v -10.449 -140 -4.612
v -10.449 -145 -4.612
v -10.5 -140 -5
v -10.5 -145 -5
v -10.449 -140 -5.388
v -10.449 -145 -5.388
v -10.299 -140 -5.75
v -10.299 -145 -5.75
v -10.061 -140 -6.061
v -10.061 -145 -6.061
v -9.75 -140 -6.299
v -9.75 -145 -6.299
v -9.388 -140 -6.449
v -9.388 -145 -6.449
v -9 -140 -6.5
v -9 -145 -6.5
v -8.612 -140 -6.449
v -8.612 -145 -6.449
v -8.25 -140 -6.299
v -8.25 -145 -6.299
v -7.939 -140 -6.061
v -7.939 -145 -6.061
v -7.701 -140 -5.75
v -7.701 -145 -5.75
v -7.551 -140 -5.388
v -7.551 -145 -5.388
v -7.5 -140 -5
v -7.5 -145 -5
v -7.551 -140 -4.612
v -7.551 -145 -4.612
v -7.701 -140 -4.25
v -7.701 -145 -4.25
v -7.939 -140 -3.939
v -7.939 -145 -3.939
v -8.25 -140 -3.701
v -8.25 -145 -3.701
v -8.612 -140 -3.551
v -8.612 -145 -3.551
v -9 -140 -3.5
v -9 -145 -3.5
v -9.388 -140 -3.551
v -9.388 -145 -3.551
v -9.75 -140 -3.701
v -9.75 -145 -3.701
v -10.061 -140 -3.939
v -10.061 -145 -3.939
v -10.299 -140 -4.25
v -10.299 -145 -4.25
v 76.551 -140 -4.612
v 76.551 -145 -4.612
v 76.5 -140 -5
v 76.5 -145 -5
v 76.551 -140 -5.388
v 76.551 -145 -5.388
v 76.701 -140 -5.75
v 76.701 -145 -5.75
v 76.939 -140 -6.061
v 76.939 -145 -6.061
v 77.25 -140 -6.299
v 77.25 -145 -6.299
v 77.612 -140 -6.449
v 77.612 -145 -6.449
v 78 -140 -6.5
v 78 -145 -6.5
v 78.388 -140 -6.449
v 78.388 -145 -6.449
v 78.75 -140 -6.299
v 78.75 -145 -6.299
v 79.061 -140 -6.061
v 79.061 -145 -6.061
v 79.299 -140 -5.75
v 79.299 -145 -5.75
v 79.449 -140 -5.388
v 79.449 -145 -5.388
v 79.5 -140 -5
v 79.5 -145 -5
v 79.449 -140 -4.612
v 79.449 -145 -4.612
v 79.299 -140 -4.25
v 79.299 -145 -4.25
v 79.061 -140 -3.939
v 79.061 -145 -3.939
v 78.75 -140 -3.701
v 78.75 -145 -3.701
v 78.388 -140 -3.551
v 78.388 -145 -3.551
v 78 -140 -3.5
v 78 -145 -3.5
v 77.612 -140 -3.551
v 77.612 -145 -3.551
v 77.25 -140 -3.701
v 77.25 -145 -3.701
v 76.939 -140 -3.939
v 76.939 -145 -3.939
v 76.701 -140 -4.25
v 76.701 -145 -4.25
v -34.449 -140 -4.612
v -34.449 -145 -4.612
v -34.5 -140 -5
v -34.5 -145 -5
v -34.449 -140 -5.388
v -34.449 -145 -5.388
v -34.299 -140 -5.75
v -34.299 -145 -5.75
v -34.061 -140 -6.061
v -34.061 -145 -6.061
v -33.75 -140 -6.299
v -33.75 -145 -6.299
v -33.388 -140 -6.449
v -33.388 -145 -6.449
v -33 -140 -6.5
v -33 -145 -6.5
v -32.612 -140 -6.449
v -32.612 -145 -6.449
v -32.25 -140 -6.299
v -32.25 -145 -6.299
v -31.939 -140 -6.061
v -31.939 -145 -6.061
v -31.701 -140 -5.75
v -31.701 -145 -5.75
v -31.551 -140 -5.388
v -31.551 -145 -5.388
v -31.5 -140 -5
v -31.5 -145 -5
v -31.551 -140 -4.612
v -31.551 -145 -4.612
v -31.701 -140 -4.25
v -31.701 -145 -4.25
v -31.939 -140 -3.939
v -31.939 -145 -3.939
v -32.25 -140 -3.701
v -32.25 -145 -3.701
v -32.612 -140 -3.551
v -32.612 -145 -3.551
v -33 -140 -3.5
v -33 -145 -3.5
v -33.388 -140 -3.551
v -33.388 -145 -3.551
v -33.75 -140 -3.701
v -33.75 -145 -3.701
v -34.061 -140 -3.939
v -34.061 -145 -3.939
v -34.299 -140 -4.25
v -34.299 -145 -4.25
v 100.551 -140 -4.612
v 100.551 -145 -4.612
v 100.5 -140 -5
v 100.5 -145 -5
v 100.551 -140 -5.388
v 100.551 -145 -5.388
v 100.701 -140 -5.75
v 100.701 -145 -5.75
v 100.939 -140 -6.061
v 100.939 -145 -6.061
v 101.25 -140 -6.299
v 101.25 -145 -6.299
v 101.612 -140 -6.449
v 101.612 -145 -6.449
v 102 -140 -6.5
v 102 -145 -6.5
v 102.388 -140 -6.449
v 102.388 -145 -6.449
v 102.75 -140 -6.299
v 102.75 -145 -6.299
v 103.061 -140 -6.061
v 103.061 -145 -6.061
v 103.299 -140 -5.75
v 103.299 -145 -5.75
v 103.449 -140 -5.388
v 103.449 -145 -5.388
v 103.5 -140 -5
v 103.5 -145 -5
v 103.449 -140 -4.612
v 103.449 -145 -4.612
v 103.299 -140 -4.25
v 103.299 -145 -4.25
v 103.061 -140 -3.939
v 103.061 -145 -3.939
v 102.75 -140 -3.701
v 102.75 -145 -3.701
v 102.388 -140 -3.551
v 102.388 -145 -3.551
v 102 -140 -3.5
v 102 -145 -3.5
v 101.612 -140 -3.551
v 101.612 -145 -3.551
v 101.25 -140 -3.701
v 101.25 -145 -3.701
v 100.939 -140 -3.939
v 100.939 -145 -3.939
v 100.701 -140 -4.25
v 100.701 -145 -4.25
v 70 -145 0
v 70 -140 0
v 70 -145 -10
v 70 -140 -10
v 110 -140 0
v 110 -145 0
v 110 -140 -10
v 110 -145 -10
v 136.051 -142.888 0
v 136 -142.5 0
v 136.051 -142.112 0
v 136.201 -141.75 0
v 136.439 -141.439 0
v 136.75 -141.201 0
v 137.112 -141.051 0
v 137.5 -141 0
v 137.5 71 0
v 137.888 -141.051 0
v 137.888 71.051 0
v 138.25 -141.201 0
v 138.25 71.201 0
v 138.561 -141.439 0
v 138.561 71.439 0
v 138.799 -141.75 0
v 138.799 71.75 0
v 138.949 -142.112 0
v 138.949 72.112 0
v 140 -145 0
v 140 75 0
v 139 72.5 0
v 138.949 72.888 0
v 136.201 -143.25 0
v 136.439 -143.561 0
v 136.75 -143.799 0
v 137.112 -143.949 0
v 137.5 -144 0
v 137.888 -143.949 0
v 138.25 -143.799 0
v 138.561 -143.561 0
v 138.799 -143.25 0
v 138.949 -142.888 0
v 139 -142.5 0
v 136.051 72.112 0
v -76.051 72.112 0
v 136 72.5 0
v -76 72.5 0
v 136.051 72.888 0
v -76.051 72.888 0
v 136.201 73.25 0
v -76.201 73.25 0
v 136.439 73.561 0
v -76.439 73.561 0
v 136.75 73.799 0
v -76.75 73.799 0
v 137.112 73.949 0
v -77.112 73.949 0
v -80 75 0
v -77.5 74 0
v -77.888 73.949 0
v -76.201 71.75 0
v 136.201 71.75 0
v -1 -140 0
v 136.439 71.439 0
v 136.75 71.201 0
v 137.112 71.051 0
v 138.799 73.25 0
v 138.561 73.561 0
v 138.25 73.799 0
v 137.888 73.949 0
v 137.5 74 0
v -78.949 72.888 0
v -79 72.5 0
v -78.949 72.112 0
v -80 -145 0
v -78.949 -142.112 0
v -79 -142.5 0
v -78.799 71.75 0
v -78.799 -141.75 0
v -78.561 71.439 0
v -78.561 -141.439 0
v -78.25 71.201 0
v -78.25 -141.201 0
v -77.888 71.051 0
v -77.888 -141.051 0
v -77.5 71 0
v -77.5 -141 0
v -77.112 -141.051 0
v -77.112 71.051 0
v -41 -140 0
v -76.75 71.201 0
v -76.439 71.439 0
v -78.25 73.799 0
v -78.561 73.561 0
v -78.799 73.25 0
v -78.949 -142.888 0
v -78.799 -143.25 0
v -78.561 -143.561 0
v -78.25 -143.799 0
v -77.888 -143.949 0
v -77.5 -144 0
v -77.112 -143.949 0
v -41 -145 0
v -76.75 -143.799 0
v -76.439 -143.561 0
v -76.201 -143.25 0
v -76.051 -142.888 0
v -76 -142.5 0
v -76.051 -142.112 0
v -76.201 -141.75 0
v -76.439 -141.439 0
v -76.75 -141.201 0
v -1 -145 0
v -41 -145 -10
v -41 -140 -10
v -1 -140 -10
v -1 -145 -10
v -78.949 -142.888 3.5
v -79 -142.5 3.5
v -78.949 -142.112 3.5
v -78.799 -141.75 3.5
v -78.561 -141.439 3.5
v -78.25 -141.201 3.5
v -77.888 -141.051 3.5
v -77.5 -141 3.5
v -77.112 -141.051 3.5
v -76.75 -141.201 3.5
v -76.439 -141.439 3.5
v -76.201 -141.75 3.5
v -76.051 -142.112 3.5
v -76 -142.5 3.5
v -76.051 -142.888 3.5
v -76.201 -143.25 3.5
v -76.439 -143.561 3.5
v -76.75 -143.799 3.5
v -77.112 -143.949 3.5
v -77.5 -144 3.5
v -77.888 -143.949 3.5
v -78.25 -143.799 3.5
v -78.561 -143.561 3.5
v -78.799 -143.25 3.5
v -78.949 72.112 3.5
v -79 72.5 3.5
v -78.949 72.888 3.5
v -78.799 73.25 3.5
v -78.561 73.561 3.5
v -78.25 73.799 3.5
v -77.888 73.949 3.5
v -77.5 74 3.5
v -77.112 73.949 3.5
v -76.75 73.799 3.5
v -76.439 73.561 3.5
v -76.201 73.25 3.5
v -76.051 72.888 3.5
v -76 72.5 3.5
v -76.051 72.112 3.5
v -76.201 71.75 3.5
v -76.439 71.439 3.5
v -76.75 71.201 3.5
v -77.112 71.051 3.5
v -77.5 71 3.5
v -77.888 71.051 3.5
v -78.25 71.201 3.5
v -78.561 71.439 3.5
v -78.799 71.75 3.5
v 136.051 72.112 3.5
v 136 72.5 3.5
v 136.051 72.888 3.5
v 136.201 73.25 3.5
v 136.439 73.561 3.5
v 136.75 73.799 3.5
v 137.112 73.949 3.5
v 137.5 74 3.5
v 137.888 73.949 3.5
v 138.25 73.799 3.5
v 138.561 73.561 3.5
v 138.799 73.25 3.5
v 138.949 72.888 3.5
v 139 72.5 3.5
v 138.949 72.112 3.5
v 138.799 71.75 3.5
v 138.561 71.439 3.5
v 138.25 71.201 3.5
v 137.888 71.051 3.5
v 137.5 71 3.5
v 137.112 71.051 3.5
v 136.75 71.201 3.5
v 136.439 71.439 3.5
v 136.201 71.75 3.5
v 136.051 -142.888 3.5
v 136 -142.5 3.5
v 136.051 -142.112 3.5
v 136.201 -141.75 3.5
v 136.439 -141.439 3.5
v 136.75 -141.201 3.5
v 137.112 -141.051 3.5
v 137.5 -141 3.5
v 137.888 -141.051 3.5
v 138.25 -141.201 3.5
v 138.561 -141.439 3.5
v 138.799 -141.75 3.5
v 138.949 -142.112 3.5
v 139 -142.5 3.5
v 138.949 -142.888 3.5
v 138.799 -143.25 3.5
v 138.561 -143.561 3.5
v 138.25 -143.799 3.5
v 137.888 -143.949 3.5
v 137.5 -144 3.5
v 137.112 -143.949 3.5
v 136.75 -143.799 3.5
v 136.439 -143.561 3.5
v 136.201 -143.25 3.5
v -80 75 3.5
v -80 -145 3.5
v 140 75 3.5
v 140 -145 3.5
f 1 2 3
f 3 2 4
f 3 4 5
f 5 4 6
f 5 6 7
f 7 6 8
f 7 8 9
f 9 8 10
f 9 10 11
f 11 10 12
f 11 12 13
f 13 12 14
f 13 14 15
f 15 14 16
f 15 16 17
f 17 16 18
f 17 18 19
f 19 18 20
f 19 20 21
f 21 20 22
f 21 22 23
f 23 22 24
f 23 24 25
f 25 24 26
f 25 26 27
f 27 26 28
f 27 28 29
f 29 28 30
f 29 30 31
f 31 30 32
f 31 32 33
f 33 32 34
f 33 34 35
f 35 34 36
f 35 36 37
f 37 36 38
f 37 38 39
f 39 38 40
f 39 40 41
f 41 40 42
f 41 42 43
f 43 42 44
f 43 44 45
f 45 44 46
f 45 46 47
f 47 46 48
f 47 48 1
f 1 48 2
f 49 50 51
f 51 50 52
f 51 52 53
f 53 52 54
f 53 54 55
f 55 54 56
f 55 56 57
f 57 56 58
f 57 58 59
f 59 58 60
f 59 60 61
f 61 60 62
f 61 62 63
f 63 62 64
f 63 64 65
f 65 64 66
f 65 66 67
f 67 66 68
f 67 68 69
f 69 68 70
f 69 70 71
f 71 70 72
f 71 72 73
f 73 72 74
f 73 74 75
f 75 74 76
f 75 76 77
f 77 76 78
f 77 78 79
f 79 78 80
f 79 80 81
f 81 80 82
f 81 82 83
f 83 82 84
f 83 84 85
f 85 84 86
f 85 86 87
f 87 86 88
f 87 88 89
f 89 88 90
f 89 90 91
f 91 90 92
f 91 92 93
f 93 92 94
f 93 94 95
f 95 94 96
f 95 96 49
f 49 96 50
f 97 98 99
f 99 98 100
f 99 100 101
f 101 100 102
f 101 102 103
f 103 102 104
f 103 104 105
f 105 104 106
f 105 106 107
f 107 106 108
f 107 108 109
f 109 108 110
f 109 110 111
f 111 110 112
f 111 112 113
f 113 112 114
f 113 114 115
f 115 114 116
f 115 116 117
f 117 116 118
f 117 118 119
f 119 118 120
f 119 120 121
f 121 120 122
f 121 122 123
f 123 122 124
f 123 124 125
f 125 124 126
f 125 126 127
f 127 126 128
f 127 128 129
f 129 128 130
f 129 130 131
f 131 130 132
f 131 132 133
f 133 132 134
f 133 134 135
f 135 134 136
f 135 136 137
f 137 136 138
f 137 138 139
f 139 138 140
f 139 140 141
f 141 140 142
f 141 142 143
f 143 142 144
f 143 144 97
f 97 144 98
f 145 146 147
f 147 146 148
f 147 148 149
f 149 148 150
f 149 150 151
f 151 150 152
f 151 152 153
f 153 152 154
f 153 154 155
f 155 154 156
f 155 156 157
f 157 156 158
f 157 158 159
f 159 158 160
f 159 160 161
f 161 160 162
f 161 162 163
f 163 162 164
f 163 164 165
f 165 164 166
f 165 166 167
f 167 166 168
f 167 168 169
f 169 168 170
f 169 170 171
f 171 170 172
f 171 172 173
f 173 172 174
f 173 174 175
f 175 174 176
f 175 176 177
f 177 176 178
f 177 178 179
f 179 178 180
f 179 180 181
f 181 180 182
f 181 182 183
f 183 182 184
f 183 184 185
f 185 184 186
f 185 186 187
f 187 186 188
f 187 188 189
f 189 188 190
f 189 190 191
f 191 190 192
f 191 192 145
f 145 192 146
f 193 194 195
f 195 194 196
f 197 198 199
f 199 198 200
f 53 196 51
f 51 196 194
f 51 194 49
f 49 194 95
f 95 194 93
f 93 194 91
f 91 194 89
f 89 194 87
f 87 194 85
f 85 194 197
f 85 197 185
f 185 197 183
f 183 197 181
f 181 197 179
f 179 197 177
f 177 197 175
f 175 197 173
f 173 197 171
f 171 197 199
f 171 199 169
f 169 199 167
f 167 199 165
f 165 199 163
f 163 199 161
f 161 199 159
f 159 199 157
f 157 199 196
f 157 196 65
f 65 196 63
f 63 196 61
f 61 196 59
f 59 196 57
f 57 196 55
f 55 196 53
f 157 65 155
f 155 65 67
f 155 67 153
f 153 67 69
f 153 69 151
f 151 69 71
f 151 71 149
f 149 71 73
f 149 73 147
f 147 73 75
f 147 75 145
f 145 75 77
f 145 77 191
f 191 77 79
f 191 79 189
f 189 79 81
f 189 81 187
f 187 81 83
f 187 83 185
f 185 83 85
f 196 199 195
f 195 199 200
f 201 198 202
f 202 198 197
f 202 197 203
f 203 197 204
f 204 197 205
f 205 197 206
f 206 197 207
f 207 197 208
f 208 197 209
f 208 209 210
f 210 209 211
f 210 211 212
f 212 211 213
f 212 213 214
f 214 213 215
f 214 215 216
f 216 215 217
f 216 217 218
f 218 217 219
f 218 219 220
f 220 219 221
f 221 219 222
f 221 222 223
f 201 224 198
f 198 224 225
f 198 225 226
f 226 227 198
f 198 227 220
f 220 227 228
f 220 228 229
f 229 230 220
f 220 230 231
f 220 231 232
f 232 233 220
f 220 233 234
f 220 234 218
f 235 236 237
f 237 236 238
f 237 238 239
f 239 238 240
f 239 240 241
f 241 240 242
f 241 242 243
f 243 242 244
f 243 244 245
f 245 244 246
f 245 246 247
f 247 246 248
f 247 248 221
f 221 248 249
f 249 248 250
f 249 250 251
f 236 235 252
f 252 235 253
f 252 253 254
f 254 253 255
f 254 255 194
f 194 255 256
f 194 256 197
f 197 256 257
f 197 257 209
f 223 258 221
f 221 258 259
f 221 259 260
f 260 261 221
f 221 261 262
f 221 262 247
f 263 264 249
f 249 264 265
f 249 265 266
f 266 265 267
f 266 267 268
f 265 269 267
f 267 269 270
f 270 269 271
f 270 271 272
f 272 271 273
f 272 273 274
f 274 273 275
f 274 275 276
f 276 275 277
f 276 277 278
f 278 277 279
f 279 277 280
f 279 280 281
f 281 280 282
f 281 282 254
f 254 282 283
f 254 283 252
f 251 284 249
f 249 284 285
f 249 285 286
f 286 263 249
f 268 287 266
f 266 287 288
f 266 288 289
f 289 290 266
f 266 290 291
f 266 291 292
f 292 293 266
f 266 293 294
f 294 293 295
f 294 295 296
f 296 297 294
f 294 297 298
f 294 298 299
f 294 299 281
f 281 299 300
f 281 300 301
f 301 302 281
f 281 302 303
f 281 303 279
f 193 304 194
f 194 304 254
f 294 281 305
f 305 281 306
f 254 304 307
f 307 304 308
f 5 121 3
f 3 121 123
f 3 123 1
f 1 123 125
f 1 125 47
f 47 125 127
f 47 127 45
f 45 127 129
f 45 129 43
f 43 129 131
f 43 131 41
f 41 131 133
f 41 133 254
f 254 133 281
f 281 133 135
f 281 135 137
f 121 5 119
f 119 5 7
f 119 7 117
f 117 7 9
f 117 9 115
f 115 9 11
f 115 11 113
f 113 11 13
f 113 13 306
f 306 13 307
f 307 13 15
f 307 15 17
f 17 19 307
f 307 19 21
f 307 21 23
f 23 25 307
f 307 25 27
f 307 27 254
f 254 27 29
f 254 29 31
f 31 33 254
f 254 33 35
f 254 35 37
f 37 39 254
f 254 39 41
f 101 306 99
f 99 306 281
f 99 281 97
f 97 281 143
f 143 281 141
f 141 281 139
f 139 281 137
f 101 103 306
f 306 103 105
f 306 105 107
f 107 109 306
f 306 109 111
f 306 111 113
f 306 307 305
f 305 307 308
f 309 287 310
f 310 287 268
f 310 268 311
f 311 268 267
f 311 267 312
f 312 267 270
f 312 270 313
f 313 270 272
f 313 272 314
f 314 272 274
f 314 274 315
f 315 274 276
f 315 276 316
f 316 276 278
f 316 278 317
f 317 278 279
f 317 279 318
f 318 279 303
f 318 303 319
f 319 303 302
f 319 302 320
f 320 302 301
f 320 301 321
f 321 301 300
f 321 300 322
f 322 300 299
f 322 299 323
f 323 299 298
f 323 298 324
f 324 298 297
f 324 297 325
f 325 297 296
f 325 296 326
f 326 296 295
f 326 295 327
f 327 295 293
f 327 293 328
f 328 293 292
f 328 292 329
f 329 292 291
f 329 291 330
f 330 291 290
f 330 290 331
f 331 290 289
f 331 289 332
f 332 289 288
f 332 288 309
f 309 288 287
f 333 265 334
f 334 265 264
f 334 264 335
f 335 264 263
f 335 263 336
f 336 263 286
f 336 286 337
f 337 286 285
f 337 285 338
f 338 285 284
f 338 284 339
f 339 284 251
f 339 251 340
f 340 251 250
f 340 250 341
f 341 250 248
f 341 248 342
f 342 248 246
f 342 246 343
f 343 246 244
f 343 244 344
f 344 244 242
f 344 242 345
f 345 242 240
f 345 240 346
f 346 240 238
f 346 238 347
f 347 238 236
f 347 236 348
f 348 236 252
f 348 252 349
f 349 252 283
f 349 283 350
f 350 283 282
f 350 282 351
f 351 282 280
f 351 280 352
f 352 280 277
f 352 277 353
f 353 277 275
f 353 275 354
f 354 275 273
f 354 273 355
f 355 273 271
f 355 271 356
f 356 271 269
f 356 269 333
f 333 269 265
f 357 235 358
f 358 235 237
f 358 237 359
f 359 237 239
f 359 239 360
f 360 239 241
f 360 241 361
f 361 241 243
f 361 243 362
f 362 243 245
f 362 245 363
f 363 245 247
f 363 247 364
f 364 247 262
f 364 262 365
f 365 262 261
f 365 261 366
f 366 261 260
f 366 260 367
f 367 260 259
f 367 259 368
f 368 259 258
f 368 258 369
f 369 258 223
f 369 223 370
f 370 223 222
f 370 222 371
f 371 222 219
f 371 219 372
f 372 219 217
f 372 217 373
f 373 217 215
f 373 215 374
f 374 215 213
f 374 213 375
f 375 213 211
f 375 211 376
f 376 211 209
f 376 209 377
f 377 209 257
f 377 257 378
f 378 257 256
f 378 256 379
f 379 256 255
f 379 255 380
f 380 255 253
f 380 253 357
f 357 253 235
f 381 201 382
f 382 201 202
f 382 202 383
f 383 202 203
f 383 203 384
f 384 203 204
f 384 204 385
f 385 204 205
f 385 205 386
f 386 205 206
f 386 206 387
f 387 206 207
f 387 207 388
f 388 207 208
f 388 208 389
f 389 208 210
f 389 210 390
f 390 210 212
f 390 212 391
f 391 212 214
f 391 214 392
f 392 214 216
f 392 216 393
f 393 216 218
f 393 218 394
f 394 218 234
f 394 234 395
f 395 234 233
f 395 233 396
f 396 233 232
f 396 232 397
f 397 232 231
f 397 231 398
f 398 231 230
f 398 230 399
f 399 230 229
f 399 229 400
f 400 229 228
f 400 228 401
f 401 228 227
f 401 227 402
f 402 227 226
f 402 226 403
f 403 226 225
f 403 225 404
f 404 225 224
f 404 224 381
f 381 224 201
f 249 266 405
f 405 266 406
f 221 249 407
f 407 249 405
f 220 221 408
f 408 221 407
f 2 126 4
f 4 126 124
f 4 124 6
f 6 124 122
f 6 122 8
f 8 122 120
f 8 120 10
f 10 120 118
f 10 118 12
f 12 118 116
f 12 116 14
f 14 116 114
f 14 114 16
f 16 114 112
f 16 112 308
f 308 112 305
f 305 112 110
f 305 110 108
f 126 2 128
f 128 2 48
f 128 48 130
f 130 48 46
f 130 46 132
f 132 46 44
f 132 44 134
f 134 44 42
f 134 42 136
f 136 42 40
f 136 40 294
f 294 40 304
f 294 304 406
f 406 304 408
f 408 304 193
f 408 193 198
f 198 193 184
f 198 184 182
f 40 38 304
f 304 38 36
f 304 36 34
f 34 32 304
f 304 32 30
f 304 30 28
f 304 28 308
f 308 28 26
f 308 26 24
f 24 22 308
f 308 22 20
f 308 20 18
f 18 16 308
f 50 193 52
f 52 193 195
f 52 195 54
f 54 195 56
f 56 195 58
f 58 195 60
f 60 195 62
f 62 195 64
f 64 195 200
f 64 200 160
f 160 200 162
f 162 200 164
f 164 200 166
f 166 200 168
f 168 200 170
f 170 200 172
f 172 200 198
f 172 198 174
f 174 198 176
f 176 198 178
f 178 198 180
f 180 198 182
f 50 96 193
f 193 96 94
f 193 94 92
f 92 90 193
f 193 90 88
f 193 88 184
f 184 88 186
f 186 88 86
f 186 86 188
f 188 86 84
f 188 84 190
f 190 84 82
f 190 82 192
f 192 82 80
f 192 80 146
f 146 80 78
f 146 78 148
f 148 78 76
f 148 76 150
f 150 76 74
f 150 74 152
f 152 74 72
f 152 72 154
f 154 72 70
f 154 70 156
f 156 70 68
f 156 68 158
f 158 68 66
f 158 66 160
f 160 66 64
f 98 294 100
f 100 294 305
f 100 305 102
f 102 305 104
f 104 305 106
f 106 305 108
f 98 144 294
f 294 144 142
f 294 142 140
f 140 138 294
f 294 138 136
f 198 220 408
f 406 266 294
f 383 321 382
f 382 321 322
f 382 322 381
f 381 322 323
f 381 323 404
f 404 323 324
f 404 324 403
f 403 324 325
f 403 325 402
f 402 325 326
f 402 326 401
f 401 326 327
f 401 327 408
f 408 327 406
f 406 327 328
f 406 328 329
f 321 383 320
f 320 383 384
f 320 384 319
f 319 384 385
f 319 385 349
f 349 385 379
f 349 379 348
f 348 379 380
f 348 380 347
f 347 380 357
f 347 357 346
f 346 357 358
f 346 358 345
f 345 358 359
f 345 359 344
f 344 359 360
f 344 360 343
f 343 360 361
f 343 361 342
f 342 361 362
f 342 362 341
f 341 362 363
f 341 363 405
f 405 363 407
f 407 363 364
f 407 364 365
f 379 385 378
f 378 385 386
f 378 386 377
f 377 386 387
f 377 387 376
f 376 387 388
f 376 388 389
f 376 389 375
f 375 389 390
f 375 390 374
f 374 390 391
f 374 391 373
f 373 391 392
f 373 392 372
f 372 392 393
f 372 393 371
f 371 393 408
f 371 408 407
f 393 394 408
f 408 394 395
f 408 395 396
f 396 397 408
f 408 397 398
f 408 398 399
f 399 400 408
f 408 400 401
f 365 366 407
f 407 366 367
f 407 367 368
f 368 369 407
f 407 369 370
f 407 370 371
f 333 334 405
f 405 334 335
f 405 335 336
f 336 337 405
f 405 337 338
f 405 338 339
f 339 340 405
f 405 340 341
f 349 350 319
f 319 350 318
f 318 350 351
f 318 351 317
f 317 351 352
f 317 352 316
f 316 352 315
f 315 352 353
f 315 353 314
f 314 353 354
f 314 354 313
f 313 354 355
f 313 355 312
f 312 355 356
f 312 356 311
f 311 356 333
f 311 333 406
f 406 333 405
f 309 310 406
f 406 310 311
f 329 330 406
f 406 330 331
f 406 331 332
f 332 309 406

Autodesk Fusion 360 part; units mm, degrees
sketch "Sketch1" plane through (0, 0, 0) normal (0, 0, 1) x (1, 0, 0)
  line L0 (-80, 75) -> (140, 75)
  line L1 (140, 75) -> (140, -145)
  line L2 (140, -145) -> (-80, -145)
  line L3 (-80, -145) -> (-80, 75)
  circle A0 centre (-77.5, 72.5) radius 1.5
  circle A1 centre (137.5, 72.5) radius 1.5
  circle A2 centre (137.5, -142.5) radius 1.5
  circle A3 centre (-77.5, -142.5) radius 1.5
  dimension "d1" = 220
  dimension "d2" = 220
  dimension "d3" = 3
  dimension "d4" = 3
  dimension "d5" = 3
  dimension "d6" = 3
  dimension "d7" = 2.5
  dimension "d8" = 2.5
  dimension "d9" = 2.5
  dimension "d10" = 2.5
  dimension "d11" = 2.5
  dimension "d12" = 2.5
  dimension "d13" = 2.5
  dimension "d14" = 2.5
extrude "Extrude1" add sketch "Sketch1" along normal blind 3.5
sketch "Sketch2" plane through (0, 0, 0) normal (0, 0, -1) x (1, 0, 0)
  circle A0 centre (137.5, 142.5) radius 1.5
  circle A1 centre (137.5, -72.5) radius 1.5
  circle A2 centre (-77.5, -72.5) radius 1.5
  circle A3 centre (-77.5, 142.5) radius 1.5
  line L0 (140, 145) -> (-80, 145)
  line L1 (-80, 145) -> (-80, -75)
  line L2 (-80, -75) -> (140, -75)
  line L3 (140, -75) -> (140, 145)
  line L4 (-41, 145) -> (-1, 145)
  line L5 (-1, 145) -> (-1, 140)
  line L6 (-1, 140) -> (-41, 140)
  line L7 (-41, 140) -> (-41, 145)
  line L8 (70, 145) -> (110, 145)
  line L9 (110, 145) -> (110, 140)
  line L10 (110, 140) -> (70, 140)
  line L11 (70, 140) -> (70, 145)
  dimension "d17" = 5
  dimension "d18" = 5
  dimension "d19" = 40
  dimension "d20" = 40
  dimension "d21" = 30
  dimension "d22" = 39
extrude "Extrude2" add sketch "Sketch2" along normal blind 10 contours L0 L8 L9 L10 L11 | L0 L4 L5 L6 L7
sketch "Sketch3" plane through (0, -145, 0) normal (0, -1, 0) x (1, 0, 0)
  line L0 (110, 0) -> (140, 0)
  line L1 (140, 0) -> (140, 3.5)
  line L2 (140, 3.5) -> (-80, 3.5)
  line L3 (-80, 3.5) -> (-80, 0)
  line L4 (-80, 0) -> (-41, 0)
  line L5 (-41, 0) -> (-41, -10)
  line L6 (-41, -10) -> (-1, -10)
  line L7 (-1, -10) -> (-1, 0)
  line L8 (-1, 0) -> (70, 0)
  line L9 (70, 0) -> (70, -10)
  line L10 (70, -10) -> (110, -10)
  line L11 (110, -10) -> (110, 0)
  circle A0 centre (-33, -5) radius 1.5
  circle A1 centre (-9, -5) radius 1.5
  circle A2 centre (78, -5) radius 1.5
  circle A3 centre (102, -5) radius 1.5
  dimension "d25" = 3
  dimension "d26" = 3
  dimension "d27" = 3
  dimension "d28" = 3
  dimension "d29" = 5
  dimension "d30" = 5
  dimension "d31" = 8
  dimension "d32" = 8
  dimension "d33" = 5
  dimension "d34" = 8
  dimension "d35" = 8
  dimension "d36" = 5
extrude "Extrude3" cut sketch "Sketch3" against normal blind 5 contours A0 | A1 | A2 | A3
